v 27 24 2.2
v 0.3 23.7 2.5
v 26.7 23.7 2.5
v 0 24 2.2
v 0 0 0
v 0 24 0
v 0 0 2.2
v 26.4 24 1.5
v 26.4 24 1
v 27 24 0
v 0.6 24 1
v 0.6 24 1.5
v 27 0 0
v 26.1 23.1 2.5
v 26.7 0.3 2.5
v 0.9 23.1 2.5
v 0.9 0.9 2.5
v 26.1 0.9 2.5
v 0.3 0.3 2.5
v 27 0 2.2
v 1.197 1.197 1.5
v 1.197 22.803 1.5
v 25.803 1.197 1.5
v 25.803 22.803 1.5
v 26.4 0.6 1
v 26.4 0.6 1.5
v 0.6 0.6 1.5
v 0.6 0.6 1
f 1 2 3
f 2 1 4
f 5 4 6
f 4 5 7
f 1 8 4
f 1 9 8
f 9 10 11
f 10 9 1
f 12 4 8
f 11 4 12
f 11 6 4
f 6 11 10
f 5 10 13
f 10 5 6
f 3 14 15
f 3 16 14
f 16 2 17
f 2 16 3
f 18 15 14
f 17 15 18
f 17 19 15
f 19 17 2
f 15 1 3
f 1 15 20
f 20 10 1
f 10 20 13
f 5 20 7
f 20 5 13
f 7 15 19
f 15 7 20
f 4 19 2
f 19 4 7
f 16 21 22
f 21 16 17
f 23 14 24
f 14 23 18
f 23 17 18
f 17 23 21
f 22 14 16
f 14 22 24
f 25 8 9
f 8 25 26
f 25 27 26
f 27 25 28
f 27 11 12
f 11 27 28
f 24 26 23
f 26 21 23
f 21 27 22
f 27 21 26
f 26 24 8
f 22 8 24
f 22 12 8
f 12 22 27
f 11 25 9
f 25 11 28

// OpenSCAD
// Photo_Frame_Small_L.stl  -  Store Versile room frame (Rev C)
// Quantity: 3   Filament: Gold silk (e.g. PLA Silk+ Gold)
// Print: layer 0.12 mm, infill 100%, 2 walls, brim 0 mm, NO supports
// Orientation: back  (lying on its back, front face up)
// Notes: Gold face up (ironing on). Photo slot opens at the top.
// The library draws parts with their front toward +Y; mirror([0,1,0]) makes the real
// part face the viewer correctly (see build.py). Edit dimensions in versile_parts.scad.
use <../versile_parts.scad>

rotate([-90, 0, 0]) mirror([0, 1, 0]) photo_frame_small_l();
